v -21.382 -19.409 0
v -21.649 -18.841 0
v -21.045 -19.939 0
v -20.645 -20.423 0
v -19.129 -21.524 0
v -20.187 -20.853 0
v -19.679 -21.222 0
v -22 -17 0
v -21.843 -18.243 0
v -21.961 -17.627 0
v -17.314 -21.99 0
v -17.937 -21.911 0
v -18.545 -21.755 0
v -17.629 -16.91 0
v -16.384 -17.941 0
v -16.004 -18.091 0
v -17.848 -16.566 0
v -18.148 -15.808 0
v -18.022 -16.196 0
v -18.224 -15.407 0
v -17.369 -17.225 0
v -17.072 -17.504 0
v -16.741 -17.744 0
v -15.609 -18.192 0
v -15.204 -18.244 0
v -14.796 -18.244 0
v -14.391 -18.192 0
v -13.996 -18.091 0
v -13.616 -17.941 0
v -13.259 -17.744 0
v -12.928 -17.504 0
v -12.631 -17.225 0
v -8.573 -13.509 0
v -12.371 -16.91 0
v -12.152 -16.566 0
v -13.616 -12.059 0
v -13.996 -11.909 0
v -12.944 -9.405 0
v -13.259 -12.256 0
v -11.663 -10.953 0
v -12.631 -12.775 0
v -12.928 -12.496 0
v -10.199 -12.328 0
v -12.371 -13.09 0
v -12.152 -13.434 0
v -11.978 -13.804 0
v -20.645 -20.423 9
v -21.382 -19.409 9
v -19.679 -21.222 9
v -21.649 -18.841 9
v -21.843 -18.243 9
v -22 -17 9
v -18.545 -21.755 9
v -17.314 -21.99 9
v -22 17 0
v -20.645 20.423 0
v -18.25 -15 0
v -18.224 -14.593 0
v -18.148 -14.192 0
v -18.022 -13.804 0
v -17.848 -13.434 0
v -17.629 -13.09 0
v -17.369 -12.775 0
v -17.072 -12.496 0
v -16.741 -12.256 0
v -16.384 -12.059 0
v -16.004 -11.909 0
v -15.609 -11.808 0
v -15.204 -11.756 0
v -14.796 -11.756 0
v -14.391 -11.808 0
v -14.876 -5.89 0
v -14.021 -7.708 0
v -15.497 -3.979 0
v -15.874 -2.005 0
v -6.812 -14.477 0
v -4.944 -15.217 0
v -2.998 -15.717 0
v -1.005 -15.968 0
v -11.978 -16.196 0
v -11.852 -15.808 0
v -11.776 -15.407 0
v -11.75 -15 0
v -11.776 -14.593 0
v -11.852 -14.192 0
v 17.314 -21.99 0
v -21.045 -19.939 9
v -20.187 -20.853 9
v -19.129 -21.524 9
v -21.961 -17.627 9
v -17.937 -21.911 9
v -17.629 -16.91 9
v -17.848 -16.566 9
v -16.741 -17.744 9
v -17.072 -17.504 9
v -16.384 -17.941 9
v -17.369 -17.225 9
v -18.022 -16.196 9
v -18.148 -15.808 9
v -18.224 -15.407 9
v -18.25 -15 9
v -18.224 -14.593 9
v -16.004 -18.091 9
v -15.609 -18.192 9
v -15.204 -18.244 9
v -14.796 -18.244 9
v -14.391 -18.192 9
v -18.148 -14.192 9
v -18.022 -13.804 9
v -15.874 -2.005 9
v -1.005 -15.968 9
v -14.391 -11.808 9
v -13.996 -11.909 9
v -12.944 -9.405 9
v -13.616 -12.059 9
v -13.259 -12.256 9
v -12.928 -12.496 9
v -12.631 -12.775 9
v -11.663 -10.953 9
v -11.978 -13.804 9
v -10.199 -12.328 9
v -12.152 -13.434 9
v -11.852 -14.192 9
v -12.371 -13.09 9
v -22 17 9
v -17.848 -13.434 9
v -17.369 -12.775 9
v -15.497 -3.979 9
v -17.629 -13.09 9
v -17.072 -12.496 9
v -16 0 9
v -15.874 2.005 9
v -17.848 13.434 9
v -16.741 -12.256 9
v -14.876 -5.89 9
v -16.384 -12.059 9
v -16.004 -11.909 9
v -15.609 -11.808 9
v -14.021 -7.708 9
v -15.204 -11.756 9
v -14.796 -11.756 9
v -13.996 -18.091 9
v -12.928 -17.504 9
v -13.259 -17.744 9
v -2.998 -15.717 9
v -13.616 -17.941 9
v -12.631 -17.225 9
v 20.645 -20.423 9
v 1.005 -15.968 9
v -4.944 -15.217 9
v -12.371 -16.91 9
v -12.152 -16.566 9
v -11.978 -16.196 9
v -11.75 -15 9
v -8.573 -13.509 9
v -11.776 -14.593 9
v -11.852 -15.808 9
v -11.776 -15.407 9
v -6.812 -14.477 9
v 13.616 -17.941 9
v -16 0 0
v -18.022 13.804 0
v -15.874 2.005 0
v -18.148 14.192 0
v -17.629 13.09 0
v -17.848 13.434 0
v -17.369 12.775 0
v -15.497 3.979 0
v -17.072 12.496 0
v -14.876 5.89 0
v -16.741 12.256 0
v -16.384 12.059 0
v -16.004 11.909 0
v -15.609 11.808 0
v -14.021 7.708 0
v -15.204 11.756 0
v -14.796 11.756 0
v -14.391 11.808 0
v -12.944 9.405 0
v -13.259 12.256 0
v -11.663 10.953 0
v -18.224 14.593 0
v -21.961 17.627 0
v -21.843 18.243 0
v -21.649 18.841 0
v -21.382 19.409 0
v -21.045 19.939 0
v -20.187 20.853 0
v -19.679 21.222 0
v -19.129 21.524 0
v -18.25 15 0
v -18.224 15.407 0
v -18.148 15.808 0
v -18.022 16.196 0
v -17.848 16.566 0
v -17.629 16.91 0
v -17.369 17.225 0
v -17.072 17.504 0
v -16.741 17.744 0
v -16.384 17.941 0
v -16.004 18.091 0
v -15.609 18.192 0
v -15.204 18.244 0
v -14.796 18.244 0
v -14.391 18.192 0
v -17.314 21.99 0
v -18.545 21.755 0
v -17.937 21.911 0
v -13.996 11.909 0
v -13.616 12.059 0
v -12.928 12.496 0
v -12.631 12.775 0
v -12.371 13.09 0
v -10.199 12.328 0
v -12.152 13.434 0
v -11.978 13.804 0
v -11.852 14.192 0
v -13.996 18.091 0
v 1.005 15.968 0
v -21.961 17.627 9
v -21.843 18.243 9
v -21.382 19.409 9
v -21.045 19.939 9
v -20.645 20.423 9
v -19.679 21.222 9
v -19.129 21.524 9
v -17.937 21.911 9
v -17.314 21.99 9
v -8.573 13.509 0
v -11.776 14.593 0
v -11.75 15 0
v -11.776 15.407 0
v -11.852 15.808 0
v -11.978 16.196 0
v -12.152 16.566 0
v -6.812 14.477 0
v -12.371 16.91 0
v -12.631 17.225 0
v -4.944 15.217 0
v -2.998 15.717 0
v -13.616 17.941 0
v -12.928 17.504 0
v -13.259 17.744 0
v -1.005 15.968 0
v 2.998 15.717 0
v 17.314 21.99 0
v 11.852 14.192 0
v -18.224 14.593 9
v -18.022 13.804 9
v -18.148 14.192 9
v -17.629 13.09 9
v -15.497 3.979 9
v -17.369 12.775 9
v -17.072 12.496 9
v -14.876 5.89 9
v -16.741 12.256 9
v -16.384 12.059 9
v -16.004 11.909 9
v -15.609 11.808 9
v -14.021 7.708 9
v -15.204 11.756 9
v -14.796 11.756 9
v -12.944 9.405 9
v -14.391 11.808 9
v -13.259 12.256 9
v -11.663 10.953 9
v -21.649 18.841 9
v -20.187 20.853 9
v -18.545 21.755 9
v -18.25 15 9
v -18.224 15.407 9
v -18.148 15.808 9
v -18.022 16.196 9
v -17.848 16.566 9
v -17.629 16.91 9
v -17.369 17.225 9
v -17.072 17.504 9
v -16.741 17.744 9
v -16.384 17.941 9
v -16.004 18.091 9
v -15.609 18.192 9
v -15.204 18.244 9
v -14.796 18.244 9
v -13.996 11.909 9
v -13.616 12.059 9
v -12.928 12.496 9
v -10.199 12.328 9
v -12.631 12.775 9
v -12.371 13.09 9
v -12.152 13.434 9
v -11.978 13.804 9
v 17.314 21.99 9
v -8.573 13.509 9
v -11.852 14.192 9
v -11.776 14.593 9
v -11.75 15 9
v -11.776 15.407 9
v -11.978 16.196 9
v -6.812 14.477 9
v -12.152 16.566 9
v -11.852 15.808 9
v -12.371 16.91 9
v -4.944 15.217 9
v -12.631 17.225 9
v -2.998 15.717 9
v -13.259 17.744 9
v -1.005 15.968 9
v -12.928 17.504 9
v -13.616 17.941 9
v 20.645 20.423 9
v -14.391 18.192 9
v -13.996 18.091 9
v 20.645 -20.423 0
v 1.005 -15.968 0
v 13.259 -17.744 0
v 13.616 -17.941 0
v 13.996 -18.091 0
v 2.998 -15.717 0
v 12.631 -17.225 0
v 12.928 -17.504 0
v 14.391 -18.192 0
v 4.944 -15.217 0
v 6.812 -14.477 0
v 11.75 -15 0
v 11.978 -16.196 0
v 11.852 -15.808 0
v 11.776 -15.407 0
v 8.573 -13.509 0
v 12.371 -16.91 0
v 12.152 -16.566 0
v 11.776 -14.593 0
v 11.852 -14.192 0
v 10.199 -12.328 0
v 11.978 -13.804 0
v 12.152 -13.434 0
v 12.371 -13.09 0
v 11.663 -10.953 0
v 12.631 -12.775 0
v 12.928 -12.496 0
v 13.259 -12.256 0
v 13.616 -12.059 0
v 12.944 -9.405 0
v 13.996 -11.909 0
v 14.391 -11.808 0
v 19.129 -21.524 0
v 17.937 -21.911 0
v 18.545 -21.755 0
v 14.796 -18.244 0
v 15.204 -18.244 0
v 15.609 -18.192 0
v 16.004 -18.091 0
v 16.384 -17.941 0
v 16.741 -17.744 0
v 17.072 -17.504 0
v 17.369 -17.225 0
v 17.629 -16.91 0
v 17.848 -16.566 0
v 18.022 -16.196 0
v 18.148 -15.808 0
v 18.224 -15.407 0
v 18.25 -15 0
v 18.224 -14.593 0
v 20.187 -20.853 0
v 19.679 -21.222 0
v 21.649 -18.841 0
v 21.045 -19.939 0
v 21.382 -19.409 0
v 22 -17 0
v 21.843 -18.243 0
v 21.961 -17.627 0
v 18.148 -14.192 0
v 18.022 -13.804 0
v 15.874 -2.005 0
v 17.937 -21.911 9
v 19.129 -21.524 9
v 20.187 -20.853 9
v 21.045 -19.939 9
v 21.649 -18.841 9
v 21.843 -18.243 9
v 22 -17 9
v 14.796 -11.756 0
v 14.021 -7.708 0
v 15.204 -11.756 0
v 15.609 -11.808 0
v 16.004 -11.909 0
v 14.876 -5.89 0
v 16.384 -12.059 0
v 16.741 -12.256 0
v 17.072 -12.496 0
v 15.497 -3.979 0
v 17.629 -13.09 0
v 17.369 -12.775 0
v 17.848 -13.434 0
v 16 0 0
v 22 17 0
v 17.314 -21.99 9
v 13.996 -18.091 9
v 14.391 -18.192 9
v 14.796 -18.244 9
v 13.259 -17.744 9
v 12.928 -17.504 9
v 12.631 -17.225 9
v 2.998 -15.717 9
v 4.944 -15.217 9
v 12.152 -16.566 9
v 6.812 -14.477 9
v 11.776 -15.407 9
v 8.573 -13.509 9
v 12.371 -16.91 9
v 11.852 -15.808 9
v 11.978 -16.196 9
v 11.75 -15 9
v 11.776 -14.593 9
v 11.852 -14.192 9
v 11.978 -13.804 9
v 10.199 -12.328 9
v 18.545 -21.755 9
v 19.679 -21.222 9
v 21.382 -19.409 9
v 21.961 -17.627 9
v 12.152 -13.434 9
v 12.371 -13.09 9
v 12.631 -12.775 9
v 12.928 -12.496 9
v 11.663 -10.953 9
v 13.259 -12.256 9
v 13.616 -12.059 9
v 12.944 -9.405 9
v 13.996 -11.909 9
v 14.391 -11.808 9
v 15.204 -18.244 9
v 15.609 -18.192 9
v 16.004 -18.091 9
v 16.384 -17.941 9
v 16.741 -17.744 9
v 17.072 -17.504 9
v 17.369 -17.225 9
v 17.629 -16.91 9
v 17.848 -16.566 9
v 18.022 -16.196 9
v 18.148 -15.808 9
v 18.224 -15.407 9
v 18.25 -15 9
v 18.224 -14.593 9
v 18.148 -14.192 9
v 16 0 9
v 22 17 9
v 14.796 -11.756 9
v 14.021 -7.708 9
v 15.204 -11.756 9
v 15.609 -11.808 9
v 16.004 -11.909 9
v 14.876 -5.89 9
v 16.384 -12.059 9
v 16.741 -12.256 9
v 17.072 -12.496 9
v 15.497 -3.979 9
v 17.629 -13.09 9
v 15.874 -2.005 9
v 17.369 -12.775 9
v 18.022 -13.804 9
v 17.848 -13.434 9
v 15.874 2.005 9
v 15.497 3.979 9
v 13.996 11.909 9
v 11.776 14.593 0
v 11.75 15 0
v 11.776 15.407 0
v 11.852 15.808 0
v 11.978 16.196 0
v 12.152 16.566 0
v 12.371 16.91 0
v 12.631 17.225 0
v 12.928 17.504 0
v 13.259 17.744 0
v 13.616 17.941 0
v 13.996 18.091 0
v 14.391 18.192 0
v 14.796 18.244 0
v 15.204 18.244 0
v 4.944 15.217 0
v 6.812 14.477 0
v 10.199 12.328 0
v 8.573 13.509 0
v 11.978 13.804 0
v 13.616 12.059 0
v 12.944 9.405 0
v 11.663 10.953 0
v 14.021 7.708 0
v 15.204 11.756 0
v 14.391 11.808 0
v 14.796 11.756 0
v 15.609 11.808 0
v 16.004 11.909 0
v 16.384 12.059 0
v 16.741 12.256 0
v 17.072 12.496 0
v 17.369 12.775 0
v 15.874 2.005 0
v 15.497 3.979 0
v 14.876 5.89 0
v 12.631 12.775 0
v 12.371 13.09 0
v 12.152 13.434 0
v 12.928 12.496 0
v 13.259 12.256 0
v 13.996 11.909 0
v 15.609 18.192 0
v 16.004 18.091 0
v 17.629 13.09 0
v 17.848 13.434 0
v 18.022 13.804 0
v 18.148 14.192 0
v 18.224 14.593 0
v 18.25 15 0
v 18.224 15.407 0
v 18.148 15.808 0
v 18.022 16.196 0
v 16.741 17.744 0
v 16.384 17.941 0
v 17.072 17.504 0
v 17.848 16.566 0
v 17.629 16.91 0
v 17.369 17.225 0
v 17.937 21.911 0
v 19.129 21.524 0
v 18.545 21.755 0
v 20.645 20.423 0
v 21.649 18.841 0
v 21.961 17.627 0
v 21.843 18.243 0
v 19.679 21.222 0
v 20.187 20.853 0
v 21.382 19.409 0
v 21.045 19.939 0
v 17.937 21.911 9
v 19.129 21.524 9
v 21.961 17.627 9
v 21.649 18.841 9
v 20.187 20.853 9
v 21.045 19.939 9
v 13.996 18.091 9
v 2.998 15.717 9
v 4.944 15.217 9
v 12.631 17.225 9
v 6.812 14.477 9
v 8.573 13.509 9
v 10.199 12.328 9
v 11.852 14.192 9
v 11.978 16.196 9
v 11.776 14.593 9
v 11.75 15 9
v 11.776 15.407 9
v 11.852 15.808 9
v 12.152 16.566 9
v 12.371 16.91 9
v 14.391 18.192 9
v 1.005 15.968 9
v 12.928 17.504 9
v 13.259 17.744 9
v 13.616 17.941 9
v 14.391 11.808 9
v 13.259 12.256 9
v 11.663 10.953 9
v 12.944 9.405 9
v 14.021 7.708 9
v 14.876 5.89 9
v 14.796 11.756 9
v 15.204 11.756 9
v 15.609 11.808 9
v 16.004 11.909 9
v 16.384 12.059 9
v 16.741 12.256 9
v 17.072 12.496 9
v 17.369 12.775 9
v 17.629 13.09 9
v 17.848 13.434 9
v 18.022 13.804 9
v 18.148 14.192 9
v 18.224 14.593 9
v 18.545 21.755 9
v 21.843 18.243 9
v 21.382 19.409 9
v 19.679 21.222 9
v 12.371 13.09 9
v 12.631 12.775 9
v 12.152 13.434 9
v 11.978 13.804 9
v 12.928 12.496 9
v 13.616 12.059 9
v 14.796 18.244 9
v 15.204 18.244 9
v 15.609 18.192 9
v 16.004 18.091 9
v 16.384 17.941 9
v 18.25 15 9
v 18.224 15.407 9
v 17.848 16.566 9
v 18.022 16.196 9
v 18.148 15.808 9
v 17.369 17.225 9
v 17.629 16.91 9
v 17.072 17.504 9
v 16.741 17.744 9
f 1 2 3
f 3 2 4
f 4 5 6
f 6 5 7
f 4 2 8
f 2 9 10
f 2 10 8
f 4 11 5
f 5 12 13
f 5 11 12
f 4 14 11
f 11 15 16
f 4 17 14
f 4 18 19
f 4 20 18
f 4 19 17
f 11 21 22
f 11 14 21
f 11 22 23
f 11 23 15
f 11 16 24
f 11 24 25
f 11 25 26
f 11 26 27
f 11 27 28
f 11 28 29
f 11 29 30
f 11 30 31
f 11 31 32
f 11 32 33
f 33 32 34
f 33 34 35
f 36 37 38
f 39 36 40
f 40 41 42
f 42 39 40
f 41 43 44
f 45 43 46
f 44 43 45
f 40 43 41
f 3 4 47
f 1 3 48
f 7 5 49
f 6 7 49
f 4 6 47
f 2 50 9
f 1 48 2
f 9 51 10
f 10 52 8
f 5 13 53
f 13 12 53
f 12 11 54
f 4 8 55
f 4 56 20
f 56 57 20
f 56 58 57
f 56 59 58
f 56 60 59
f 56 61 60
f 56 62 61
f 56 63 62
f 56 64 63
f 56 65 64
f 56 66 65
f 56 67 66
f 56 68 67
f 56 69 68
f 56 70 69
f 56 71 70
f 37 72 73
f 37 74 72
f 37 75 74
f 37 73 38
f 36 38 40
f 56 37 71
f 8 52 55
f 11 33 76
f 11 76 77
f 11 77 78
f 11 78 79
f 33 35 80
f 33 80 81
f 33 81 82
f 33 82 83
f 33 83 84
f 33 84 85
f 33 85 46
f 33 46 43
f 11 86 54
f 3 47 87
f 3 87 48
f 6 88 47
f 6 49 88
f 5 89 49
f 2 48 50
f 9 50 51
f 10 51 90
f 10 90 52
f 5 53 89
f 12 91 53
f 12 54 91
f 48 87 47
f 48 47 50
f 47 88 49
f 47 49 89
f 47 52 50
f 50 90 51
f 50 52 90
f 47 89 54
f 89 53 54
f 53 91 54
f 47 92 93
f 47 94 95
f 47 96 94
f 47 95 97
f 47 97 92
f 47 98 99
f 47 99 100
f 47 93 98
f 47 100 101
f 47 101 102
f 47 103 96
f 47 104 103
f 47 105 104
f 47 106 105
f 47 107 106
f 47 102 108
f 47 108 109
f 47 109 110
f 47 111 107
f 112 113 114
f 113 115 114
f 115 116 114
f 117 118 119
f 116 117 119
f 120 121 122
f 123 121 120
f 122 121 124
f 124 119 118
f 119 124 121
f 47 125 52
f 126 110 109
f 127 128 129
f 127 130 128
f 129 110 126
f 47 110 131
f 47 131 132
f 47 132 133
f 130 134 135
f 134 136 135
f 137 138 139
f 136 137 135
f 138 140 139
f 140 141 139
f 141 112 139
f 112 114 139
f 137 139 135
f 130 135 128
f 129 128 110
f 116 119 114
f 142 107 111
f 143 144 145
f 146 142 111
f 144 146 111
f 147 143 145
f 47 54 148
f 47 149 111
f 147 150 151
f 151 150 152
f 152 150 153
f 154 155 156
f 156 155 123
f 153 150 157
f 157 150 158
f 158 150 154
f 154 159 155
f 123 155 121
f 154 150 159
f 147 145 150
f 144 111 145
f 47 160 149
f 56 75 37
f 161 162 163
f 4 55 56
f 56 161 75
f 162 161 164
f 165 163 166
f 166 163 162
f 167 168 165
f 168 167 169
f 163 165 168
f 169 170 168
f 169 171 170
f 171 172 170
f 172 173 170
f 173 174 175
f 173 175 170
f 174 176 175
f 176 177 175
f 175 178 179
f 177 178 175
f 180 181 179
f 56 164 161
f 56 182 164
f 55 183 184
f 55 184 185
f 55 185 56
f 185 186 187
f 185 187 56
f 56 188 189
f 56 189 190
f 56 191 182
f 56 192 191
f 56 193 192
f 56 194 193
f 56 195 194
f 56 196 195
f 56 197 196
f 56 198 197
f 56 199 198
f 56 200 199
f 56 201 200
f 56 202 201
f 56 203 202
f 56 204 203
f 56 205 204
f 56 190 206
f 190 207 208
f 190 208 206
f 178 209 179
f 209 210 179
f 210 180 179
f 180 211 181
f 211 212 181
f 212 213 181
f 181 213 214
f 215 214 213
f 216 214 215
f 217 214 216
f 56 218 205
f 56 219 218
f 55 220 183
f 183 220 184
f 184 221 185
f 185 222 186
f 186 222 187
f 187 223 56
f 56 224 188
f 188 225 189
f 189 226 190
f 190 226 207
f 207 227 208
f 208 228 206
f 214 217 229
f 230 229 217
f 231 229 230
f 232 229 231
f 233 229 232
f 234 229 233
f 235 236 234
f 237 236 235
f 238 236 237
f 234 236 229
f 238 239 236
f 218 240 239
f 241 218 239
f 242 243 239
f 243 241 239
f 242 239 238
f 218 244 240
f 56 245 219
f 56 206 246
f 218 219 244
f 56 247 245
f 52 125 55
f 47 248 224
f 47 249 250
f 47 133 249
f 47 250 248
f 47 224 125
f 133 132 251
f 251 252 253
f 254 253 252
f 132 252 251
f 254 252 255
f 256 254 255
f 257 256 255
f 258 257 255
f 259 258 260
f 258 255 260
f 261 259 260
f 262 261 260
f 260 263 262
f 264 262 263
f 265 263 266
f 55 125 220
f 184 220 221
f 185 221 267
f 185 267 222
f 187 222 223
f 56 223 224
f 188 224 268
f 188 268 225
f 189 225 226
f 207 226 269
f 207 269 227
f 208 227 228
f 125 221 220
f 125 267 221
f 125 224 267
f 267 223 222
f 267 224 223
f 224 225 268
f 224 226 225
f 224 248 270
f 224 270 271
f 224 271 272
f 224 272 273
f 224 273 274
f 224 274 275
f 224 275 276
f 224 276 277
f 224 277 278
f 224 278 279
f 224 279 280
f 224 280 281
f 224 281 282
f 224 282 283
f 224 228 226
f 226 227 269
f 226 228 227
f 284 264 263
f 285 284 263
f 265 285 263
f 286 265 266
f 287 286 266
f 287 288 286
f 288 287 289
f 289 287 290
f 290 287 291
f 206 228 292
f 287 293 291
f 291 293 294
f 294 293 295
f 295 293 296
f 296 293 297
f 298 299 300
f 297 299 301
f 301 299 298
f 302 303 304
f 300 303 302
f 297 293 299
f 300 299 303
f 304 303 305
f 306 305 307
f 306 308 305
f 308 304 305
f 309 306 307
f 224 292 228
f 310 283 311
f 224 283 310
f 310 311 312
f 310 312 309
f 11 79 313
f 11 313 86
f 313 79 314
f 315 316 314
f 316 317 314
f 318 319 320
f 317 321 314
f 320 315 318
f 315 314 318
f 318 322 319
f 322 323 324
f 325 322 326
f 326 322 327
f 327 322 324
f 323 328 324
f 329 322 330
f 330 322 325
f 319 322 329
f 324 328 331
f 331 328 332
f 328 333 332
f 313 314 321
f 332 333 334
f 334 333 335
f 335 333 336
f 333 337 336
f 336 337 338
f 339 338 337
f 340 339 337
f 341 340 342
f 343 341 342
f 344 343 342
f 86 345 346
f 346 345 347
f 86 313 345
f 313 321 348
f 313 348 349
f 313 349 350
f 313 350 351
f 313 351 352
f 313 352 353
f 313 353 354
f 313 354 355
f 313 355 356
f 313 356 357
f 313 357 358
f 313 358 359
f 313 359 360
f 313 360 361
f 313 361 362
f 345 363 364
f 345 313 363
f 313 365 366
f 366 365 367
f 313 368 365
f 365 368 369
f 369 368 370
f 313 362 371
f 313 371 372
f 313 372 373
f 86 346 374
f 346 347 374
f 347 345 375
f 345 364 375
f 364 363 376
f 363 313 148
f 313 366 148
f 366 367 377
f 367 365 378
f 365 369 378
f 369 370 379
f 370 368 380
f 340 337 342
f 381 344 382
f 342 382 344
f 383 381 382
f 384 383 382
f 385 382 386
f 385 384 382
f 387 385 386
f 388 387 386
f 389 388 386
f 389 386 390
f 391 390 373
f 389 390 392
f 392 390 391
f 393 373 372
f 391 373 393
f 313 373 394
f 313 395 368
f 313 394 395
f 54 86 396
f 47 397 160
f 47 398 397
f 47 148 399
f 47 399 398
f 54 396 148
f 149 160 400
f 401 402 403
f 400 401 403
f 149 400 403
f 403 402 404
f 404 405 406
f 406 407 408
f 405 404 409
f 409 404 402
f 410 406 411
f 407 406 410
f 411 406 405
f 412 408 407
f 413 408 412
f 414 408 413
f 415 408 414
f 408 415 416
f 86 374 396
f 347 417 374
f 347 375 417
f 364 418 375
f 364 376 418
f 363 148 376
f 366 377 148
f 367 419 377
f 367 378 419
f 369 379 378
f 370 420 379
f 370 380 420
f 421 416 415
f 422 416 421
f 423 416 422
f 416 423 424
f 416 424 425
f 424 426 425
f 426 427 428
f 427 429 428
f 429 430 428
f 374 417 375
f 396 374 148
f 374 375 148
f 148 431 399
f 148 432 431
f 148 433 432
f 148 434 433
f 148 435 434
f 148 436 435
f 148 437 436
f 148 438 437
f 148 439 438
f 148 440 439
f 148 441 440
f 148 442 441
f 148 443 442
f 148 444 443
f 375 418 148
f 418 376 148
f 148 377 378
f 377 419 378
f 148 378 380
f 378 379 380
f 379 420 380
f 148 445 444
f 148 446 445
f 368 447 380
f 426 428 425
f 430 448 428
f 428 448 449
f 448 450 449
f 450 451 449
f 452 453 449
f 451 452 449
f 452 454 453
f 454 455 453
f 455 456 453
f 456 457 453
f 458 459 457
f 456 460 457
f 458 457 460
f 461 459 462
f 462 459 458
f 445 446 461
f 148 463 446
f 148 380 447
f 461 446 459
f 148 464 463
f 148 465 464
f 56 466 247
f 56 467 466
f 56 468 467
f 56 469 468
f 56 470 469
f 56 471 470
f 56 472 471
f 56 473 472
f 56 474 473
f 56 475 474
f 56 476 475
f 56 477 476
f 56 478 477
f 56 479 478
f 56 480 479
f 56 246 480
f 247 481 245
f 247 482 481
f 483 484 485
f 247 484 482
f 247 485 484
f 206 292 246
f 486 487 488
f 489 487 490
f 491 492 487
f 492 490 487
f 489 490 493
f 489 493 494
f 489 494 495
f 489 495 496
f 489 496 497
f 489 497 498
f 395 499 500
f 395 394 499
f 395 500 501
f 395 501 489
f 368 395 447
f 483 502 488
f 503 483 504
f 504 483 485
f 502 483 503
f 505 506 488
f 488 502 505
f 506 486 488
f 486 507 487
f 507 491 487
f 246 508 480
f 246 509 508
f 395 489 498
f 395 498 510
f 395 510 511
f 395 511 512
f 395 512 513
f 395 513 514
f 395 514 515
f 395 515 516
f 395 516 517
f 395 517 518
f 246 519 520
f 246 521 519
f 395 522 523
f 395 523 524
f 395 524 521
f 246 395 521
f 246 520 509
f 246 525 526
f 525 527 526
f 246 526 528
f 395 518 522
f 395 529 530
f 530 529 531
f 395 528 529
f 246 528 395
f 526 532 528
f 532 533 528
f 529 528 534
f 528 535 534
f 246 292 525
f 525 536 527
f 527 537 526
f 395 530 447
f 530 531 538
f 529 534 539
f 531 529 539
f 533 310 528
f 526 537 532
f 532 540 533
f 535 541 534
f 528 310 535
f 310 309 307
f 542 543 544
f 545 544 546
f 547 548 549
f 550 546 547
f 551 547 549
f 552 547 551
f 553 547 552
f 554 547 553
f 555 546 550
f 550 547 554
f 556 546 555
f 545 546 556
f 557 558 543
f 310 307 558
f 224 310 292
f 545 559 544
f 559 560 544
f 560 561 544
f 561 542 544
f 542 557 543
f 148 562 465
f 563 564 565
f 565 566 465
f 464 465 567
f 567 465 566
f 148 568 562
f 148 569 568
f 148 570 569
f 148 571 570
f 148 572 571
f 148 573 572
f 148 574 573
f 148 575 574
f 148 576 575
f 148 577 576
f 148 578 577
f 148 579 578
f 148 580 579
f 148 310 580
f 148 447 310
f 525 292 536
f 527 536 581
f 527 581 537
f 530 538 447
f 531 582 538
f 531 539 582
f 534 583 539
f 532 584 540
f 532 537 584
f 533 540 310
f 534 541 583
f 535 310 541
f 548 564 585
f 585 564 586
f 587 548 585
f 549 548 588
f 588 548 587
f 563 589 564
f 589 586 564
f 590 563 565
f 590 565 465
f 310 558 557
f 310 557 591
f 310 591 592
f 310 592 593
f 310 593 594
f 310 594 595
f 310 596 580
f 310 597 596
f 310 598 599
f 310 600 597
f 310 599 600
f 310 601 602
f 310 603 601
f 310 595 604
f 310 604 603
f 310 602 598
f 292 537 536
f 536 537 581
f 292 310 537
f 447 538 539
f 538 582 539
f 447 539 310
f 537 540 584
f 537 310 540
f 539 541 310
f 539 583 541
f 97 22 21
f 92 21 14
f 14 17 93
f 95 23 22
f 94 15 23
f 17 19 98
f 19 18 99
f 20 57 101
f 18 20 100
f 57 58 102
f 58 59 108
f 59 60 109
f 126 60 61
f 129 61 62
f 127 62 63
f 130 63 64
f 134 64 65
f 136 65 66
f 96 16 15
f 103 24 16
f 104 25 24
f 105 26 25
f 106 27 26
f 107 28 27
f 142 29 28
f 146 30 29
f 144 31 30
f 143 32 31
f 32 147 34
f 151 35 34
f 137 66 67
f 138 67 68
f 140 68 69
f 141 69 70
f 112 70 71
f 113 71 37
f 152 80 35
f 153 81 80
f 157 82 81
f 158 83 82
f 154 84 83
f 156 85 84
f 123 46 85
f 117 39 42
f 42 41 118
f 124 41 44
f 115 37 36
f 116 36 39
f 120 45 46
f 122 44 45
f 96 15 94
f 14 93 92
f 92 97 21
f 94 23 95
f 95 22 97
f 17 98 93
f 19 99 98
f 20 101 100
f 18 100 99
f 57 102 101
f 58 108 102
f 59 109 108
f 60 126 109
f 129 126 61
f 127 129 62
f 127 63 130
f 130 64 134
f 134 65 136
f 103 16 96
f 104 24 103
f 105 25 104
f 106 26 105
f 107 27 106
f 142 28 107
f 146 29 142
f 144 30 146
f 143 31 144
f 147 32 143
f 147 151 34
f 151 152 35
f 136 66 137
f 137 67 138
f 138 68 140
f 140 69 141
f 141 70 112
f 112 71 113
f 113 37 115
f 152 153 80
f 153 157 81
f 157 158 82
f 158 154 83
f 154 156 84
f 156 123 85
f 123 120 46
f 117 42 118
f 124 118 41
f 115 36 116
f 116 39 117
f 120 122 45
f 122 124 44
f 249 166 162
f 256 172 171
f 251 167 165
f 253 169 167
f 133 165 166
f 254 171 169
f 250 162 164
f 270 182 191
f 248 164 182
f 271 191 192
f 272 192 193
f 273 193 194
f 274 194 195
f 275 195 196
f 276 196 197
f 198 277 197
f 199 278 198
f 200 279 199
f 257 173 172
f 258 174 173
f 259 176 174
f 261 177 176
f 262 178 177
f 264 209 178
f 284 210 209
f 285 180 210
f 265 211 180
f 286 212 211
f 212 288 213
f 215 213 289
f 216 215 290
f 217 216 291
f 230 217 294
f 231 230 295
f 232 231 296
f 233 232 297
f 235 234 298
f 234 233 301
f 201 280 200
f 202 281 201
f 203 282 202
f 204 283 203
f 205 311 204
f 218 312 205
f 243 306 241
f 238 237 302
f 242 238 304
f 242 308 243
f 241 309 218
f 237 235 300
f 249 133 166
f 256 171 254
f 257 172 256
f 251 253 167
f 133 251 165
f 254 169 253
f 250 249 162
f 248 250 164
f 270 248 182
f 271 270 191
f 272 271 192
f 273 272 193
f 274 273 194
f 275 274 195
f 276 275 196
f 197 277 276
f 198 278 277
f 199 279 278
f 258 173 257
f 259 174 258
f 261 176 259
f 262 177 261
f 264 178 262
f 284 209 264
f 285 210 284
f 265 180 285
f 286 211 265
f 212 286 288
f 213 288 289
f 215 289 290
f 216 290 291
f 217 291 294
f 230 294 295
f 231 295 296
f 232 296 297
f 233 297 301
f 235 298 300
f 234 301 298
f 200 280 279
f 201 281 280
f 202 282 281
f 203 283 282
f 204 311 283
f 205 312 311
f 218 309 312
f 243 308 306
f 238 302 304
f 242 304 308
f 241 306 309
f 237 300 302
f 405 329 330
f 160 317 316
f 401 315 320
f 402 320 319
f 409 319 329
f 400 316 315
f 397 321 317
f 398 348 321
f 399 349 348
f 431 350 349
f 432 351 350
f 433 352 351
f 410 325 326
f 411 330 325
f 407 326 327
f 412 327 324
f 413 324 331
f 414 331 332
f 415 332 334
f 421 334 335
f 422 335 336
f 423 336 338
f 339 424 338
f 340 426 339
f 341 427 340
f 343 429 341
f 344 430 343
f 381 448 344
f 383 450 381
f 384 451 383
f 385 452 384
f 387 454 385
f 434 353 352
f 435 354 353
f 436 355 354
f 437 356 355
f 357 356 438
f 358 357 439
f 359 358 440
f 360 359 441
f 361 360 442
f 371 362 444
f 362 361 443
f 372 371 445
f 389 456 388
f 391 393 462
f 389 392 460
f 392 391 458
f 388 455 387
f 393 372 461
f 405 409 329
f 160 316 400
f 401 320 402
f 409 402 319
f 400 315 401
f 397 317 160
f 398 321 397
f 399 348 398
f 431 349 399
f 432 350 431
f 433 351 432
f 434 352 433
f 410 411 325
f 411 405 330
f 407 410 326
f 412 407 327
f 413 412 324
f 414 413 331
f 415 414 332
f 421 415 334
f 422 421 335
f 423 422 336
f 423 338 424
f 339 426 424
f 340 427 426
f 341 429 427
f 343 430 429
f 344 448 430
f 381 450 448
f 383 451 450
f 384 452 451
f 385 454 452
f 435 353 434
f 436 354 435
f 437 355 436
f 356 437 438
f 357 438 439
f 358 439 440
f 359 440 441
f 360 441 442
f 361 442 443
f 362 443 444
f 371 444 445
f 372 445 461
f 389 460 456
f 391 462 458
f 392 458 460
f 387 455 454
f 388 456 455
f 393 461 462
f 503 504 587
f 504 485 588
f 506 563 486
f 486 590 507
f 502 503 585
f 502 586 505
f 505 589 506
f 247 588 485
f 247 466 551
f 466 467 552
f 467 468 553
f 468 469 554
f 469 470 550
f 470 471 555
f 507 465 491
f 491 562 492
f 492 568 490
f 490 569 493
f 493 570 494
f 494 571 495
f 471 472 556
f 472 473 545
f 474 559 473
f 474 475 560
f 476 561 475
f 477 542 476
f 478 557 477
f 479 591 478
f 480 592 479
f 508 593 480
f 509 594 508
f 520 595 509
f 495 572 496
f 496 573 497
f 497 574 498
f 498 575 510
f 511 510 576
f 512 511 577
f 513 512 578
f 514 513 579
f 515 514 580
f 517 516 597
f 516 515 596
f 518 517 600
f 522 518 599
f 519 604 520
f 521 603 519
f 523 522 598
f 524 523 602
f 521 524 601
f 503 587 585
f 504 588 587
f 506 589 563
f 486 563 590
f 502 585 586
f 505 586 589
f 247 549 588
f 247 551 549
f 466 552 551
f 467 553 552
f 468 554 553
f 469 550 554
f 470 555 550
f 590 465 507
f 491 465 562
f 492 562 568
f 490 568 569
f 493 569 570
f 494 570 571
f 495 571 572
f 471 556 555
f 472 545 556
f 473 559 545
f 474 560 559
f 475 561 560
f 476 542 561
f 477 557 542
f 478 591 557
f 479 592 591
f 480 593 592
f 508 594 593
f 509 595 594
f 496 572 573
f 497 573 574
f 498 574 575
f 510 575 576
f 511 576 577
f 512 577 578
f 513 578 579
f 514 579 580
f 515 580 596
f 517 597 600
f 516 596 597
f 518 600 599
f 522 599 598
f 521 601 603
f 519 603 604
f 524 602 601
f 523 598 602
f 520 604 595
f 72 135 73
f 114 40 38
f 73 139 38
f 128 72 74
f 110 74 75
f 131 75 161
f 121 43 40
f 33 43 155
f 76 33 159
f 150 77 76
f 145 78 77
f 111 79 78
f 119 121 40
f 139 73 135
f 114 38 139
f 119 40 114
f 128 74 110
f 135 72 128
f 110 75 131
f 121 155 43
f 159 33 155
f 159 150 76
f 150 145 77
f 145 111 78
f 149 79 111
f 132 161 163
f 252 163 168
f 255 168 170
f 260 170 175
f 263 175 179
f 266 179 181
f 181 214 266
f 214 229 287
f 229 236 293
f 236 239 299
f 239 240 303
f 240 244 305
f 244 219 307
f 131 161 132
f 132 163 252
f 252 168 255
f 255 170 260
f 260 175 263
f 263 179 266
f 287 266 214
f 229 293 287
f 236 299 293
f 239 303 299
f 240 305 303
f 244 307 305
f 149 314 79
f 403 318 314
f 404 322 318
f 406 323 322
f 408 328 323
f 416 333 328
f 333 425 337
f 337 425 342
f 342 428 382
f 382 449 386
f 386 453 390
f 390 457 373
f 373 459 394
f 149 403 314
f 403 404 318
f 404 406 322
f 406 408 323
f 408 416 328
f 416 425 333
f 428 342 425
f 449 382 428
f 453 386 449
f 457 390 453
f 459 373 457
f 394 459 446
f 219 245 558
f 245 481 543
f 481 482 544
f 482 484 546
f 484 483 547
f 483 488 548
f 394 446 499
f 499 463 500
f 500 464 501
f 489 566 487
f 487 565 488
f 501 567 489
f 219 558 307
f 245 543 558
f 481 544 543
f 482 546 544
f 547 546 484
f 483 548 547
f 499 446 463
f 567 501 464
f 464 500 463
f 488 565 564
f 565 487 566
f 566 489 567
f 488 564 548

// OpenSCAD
$fn = 50;

difference() {
	union() {
		hull() {
			translate(v = [-17.0, 17.0, 0]) {
				cylinder(h = 9, r = 5);
			}
			translate(v = [17.0, 17.0, 0]) {
				cylinder(h = 9, r = 5);
			}
			translate(v = [-17.0, -17.0, 0]) {
				cylinder(h = 9, r = 5);
			}
			translate(v = [17.0, -17.0, 0]) {
				cylinder(h = 9, r = 5);
			}
		}
	}
	union() {
		translate(v = [-15.0, -15.0, -100.0]) {
			cylinder(h = 200, r = 3.25);
		}
		translate(v = [-15.0, 15.0, -100.0]) {
			cylinder(h = 200, r = 3.25);
		}
		translate(v = [15.0, -15.0, -100.0]) {
			cylinder(h = 200, r = 3.25);
		}
		translate(v = [15.0, 15.0, -100.0]) {
			cylinder(h = 200, r = 3.25);
		}
		translate(v = [-15.0, -15.0, -100.0]) {
			cylinder(h = 200, r = 1.8);
		}
		translate(v = [-15.0, 15.0, -100.0]) {
			cylinder(h = 200, r = 1.8);
		}
		translate(v = [15.0, -15.0, -100.0]) {
			cylinder(h = 200, r = 1.8);
		}
		translate(v = [15.0, 15.0, -100.0]) {
			cylinder(h = 200, r = 1.8);
		}
		cylinder(h = 9, r = 16.0);
	}
}
